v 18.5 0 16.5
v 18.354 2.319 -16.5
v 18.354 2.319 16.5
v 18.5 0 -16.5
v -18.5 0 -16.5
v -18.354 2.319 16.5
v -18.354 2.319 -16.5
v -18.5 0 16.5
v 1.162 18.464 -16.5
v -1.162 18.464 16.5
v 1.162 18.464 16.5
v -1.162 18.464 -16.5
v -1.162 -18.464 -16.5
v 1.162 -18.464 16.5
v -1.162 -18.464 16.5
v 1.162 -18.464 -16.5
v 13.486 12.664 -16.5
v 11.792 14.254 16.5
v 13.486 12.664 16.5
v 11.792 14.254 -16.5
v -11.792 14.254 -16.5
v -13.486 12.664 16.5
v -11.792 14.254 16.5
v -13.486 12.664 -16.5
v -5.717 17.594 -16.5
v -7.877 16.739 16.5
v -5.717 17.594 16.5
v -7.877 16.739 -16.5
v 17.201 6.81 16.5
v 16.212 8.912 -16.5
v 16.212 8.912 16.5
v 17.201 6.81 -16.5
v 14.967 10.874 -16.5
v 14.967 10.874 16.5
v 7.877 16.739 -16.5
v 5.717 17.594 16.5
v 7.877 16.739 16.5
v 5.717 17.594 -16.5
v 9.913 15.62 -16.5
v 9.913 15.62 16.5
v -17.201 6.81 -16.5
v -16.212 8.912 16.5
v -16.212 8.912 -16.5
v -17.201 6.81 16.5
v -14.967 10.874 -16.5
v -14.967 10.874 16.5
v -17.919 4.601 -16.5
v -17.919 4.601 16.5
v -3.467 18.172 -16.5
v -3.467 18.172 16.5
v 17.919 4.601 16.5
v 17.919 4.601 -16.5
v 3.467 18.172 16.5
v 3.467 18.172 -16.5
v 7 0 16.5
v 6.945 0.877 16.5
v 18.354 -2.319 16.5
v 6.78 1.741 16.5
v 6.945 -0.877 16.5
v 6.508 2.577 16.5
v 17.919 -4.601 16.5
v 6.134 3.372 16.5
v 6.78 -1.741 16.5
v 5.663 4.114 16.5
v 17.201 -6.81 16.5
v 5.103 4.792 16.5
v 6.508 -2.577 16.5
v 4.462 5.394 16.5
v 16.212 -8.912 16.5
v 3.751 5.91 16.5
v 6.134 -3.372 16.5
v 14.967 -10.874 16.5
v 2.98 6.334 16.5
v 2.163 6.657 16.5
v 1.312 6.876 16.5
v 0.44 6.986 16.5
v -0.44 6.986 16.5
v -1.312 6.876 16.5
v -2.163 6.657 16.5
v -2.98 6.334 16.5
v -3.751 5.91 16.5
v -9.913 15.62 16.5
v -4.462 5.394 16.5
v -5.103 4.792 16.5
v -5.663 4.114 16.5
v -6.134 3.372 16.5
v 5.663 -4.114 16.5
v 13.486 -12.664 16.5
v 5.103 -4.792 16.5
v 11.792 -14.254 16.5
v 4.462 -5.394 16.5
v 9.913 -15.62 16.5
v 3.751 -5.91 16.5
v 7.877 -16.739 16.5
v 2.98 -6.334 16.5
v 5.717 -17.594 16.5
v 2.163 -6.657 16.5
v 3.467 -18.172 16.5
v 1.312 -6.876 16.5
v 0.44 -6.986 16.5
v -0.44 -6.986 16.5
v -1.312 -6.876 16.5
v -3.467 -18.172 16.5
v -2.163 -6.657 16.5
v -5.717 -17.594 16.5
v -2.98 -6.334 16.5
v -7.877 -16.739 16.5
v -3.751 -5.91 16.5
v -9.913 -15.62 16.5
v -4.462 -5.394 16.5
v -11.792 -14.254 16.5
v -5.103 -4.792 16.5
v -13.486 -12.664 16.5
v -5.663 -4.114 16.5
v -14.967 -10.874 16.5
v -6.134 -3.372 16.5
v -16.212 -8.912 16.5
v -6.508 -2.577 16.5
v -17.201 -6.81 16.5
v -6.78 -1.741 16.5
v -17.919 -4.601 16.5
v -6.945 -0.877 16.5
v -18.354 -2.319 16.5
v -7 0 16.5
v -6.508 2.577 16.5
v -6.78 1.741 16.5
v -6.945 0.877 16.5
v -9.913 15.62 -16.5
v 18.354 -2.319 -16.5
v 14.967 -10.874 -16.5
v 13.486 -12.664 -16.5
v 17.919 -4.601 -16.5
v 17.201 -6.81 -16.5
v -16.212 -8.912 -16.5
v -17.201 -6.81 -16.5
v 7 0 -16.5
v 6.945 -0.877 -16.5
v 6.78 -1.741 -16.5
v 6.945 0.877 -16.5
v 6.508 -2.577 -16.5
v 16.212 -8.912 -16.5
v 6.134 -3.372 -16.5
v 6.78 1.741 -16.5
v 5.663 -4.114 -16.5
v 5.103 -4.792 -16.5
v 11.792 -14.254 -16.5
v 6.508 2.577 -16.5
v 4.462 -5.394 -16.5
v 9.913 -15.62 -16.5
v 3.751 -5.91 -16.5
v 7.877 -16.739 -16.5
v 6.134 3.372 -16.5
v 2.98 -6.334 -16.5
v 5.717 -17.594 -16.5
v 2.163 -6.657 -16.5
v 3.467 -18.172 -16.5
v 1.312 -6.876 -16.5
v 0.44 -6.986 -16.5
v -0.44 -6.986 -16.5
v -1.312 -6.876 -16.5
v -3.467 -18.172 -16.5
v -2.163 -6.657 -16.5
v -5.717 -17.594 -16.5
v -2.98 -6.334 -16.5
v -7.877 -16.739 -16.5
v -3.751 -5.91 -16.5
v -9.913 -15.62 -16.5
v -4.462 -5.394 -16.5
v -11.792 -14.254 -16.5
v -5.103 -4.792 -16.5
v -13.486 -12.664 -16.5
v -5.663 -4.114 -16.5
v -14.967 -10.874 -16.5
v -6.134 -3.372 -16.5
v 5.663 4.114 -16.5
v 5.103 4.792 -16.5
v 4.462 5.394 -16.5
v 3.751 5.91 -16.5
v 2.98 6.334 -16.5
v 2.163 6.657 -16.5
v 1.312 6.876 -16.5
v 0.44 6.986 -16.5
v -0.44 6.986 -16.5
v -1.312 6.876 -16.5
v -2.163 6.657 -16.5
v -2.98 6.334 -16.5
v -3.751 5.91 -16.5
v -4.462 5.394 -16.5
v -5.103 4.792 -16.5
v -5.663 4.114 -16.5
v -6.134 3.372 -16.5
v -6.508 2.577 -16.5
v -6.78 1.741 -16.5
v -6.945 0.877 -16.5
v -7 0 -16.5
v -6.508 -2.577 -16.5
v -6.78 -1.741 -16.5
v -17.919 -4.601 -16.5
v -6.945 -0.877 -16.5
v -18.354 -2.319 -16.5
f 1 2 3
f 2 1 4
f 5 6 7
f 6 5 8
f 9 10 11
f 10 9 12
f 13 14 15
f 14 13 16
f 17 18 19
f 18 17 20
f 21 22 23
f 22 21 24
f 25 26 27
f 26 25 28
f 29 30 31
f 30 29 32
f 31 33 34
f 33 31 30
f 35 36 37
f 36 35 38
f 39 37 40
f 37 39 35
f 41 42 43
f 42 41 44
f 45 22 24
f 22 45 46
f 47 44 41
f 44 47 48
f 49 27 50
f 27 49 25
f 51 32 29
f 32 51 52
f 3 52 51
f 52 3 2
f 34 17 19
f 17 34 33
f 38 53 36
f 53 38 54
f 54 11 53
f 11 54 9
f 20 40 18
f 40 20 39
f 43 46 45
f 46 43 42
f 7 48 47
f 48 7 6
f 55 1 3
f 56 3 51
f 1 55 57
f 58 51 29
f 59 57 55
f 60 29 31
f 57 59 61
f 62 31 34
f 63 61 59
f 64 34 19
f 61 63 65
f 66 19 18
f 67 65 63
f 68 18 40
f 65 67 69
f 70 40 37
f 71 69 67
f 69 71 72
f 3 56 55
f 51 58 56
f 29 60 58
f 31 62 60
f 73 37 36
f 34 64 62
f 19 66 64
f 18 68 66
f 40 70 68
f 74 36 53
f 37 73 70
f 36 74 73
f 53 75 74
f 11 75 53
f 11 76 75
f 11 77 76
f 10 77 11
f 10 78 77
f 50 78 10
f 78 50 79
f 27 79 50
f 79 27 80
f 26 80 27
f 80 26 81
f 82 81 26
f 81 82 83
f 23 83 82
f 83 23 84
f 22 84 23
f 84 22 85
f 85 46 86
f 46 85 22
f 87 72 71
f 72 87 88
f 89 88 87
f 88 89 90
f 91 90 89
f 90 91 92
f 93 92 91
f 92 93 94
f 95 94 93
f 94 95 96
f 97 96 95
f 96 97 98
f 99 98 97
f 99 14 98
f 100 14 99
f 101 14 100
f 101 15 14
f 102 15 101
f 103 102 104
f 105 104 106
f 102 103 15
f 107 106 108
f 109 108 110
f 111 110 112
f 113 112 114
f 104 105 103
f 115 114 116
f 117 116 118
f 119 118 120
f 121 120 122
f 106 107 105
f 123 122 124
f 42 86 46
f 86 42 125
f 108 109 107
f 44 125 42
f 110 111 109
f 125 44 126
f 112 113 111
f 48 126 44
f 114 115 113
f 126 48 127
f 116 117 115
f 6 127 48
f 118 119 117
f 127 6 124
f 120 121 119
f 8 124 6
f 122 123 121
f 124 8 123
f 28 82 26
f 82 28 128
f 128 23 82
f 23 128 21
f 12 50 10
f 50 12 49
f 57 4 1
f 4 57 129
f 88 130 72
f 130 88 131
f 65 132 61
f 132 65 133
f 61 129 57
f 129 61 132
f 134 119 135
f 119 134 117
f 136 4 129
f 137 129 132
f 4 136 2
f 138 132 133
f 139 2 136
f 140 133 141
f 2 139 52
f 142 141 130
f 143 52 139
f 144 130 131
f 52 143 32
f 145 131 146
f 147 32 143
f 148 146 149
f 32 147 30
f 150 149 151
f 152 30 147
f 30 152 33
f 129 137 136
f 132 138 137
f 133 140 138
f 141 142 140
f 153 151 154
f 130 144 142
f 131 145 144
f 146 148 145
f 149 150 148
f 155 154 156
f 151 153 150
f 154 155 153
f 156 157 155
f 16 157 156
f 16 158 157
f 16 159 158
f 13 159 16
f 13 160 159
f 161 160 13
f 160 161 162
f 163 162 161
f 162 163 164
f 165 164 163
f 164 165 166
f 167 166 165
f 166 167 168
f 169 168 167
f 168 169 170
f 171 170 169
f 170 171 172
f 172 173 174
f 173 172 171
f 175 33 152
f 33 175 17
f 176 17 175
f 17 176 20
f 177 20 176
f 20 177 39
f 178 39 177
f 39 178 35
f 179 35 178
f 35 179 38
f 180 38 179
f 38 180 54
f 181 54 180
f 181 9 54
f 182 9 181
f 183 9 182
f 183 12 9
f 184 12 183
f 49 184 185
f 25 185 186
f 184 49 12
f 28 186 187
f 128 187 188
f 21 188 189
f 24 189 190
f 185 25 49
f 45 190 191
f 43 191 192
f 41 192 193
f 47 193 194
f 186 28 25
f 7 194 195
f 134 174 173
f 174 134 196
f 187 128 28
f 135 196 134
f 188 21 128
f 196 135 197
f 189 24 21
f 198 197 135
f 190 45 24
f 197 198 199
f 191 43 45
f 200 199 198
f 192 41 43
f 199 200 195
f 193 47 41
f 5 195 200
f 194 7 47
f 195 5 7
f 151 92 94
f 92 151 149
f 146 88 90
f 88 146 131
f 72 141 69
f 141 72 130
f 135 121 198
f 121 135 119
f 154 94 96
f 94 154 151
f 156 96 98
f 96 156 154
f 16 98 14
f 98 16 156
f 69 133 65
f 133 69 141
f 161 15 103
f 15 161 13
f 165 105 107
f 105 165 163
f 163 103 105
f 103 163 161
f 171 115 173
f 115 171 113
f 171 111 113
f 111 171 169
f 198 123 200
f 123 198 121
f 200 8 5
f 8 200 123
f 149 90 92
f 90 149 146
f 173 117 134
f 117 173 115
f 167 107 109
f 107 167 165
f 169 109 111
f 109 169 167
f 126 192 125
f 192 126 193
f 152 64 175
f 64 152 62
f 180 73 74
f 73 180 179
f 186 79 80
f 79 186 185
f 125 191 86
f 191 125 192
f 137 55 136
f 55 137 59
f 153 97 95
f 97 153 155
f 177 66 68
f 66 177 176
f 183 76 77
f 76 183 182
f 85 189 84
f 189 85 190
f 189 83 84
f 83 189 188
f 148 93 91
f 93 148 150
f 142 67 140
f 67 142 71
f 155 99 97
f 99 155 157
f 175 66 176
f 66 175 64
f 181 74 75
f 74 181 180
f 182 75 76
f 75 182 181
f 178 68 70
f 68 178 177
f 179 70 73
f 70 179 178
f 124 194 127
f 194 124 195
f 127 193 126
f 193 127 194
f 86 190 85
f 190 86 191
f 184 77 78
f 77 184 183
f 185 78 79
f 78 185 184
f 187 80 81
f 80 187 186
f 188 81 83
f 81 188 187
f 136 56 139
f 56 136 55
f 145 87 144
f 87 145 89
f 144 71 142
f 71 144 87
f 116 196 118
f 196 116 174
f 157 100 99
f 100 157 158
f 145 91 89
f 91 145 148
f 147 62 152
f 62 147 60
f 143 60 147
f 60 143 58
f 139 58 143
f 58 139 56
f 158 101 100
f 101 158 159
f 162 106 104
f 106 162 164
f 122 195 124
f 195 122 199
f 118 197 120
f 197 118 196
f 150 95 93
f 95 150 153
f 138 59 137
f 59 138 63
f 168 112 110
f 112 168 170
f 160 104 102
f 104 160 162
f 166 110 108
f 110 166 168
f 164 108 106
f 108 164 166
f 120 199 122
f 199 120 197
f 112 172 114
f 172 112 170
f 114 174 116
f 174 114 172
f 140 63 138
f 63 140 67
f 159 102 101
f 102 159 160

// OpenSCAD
$fn = 50;


difference() {
	union() {
		translate(v = [0, 0, -16.5000000000]) {
			cylinder(h = 33, r = 18.5000000000);
		}
	}
	union() {
		translate(v = [0, 0, -100.0000000000]) {
			cylinder(h = 200, r = 7);
		}
	}
}
